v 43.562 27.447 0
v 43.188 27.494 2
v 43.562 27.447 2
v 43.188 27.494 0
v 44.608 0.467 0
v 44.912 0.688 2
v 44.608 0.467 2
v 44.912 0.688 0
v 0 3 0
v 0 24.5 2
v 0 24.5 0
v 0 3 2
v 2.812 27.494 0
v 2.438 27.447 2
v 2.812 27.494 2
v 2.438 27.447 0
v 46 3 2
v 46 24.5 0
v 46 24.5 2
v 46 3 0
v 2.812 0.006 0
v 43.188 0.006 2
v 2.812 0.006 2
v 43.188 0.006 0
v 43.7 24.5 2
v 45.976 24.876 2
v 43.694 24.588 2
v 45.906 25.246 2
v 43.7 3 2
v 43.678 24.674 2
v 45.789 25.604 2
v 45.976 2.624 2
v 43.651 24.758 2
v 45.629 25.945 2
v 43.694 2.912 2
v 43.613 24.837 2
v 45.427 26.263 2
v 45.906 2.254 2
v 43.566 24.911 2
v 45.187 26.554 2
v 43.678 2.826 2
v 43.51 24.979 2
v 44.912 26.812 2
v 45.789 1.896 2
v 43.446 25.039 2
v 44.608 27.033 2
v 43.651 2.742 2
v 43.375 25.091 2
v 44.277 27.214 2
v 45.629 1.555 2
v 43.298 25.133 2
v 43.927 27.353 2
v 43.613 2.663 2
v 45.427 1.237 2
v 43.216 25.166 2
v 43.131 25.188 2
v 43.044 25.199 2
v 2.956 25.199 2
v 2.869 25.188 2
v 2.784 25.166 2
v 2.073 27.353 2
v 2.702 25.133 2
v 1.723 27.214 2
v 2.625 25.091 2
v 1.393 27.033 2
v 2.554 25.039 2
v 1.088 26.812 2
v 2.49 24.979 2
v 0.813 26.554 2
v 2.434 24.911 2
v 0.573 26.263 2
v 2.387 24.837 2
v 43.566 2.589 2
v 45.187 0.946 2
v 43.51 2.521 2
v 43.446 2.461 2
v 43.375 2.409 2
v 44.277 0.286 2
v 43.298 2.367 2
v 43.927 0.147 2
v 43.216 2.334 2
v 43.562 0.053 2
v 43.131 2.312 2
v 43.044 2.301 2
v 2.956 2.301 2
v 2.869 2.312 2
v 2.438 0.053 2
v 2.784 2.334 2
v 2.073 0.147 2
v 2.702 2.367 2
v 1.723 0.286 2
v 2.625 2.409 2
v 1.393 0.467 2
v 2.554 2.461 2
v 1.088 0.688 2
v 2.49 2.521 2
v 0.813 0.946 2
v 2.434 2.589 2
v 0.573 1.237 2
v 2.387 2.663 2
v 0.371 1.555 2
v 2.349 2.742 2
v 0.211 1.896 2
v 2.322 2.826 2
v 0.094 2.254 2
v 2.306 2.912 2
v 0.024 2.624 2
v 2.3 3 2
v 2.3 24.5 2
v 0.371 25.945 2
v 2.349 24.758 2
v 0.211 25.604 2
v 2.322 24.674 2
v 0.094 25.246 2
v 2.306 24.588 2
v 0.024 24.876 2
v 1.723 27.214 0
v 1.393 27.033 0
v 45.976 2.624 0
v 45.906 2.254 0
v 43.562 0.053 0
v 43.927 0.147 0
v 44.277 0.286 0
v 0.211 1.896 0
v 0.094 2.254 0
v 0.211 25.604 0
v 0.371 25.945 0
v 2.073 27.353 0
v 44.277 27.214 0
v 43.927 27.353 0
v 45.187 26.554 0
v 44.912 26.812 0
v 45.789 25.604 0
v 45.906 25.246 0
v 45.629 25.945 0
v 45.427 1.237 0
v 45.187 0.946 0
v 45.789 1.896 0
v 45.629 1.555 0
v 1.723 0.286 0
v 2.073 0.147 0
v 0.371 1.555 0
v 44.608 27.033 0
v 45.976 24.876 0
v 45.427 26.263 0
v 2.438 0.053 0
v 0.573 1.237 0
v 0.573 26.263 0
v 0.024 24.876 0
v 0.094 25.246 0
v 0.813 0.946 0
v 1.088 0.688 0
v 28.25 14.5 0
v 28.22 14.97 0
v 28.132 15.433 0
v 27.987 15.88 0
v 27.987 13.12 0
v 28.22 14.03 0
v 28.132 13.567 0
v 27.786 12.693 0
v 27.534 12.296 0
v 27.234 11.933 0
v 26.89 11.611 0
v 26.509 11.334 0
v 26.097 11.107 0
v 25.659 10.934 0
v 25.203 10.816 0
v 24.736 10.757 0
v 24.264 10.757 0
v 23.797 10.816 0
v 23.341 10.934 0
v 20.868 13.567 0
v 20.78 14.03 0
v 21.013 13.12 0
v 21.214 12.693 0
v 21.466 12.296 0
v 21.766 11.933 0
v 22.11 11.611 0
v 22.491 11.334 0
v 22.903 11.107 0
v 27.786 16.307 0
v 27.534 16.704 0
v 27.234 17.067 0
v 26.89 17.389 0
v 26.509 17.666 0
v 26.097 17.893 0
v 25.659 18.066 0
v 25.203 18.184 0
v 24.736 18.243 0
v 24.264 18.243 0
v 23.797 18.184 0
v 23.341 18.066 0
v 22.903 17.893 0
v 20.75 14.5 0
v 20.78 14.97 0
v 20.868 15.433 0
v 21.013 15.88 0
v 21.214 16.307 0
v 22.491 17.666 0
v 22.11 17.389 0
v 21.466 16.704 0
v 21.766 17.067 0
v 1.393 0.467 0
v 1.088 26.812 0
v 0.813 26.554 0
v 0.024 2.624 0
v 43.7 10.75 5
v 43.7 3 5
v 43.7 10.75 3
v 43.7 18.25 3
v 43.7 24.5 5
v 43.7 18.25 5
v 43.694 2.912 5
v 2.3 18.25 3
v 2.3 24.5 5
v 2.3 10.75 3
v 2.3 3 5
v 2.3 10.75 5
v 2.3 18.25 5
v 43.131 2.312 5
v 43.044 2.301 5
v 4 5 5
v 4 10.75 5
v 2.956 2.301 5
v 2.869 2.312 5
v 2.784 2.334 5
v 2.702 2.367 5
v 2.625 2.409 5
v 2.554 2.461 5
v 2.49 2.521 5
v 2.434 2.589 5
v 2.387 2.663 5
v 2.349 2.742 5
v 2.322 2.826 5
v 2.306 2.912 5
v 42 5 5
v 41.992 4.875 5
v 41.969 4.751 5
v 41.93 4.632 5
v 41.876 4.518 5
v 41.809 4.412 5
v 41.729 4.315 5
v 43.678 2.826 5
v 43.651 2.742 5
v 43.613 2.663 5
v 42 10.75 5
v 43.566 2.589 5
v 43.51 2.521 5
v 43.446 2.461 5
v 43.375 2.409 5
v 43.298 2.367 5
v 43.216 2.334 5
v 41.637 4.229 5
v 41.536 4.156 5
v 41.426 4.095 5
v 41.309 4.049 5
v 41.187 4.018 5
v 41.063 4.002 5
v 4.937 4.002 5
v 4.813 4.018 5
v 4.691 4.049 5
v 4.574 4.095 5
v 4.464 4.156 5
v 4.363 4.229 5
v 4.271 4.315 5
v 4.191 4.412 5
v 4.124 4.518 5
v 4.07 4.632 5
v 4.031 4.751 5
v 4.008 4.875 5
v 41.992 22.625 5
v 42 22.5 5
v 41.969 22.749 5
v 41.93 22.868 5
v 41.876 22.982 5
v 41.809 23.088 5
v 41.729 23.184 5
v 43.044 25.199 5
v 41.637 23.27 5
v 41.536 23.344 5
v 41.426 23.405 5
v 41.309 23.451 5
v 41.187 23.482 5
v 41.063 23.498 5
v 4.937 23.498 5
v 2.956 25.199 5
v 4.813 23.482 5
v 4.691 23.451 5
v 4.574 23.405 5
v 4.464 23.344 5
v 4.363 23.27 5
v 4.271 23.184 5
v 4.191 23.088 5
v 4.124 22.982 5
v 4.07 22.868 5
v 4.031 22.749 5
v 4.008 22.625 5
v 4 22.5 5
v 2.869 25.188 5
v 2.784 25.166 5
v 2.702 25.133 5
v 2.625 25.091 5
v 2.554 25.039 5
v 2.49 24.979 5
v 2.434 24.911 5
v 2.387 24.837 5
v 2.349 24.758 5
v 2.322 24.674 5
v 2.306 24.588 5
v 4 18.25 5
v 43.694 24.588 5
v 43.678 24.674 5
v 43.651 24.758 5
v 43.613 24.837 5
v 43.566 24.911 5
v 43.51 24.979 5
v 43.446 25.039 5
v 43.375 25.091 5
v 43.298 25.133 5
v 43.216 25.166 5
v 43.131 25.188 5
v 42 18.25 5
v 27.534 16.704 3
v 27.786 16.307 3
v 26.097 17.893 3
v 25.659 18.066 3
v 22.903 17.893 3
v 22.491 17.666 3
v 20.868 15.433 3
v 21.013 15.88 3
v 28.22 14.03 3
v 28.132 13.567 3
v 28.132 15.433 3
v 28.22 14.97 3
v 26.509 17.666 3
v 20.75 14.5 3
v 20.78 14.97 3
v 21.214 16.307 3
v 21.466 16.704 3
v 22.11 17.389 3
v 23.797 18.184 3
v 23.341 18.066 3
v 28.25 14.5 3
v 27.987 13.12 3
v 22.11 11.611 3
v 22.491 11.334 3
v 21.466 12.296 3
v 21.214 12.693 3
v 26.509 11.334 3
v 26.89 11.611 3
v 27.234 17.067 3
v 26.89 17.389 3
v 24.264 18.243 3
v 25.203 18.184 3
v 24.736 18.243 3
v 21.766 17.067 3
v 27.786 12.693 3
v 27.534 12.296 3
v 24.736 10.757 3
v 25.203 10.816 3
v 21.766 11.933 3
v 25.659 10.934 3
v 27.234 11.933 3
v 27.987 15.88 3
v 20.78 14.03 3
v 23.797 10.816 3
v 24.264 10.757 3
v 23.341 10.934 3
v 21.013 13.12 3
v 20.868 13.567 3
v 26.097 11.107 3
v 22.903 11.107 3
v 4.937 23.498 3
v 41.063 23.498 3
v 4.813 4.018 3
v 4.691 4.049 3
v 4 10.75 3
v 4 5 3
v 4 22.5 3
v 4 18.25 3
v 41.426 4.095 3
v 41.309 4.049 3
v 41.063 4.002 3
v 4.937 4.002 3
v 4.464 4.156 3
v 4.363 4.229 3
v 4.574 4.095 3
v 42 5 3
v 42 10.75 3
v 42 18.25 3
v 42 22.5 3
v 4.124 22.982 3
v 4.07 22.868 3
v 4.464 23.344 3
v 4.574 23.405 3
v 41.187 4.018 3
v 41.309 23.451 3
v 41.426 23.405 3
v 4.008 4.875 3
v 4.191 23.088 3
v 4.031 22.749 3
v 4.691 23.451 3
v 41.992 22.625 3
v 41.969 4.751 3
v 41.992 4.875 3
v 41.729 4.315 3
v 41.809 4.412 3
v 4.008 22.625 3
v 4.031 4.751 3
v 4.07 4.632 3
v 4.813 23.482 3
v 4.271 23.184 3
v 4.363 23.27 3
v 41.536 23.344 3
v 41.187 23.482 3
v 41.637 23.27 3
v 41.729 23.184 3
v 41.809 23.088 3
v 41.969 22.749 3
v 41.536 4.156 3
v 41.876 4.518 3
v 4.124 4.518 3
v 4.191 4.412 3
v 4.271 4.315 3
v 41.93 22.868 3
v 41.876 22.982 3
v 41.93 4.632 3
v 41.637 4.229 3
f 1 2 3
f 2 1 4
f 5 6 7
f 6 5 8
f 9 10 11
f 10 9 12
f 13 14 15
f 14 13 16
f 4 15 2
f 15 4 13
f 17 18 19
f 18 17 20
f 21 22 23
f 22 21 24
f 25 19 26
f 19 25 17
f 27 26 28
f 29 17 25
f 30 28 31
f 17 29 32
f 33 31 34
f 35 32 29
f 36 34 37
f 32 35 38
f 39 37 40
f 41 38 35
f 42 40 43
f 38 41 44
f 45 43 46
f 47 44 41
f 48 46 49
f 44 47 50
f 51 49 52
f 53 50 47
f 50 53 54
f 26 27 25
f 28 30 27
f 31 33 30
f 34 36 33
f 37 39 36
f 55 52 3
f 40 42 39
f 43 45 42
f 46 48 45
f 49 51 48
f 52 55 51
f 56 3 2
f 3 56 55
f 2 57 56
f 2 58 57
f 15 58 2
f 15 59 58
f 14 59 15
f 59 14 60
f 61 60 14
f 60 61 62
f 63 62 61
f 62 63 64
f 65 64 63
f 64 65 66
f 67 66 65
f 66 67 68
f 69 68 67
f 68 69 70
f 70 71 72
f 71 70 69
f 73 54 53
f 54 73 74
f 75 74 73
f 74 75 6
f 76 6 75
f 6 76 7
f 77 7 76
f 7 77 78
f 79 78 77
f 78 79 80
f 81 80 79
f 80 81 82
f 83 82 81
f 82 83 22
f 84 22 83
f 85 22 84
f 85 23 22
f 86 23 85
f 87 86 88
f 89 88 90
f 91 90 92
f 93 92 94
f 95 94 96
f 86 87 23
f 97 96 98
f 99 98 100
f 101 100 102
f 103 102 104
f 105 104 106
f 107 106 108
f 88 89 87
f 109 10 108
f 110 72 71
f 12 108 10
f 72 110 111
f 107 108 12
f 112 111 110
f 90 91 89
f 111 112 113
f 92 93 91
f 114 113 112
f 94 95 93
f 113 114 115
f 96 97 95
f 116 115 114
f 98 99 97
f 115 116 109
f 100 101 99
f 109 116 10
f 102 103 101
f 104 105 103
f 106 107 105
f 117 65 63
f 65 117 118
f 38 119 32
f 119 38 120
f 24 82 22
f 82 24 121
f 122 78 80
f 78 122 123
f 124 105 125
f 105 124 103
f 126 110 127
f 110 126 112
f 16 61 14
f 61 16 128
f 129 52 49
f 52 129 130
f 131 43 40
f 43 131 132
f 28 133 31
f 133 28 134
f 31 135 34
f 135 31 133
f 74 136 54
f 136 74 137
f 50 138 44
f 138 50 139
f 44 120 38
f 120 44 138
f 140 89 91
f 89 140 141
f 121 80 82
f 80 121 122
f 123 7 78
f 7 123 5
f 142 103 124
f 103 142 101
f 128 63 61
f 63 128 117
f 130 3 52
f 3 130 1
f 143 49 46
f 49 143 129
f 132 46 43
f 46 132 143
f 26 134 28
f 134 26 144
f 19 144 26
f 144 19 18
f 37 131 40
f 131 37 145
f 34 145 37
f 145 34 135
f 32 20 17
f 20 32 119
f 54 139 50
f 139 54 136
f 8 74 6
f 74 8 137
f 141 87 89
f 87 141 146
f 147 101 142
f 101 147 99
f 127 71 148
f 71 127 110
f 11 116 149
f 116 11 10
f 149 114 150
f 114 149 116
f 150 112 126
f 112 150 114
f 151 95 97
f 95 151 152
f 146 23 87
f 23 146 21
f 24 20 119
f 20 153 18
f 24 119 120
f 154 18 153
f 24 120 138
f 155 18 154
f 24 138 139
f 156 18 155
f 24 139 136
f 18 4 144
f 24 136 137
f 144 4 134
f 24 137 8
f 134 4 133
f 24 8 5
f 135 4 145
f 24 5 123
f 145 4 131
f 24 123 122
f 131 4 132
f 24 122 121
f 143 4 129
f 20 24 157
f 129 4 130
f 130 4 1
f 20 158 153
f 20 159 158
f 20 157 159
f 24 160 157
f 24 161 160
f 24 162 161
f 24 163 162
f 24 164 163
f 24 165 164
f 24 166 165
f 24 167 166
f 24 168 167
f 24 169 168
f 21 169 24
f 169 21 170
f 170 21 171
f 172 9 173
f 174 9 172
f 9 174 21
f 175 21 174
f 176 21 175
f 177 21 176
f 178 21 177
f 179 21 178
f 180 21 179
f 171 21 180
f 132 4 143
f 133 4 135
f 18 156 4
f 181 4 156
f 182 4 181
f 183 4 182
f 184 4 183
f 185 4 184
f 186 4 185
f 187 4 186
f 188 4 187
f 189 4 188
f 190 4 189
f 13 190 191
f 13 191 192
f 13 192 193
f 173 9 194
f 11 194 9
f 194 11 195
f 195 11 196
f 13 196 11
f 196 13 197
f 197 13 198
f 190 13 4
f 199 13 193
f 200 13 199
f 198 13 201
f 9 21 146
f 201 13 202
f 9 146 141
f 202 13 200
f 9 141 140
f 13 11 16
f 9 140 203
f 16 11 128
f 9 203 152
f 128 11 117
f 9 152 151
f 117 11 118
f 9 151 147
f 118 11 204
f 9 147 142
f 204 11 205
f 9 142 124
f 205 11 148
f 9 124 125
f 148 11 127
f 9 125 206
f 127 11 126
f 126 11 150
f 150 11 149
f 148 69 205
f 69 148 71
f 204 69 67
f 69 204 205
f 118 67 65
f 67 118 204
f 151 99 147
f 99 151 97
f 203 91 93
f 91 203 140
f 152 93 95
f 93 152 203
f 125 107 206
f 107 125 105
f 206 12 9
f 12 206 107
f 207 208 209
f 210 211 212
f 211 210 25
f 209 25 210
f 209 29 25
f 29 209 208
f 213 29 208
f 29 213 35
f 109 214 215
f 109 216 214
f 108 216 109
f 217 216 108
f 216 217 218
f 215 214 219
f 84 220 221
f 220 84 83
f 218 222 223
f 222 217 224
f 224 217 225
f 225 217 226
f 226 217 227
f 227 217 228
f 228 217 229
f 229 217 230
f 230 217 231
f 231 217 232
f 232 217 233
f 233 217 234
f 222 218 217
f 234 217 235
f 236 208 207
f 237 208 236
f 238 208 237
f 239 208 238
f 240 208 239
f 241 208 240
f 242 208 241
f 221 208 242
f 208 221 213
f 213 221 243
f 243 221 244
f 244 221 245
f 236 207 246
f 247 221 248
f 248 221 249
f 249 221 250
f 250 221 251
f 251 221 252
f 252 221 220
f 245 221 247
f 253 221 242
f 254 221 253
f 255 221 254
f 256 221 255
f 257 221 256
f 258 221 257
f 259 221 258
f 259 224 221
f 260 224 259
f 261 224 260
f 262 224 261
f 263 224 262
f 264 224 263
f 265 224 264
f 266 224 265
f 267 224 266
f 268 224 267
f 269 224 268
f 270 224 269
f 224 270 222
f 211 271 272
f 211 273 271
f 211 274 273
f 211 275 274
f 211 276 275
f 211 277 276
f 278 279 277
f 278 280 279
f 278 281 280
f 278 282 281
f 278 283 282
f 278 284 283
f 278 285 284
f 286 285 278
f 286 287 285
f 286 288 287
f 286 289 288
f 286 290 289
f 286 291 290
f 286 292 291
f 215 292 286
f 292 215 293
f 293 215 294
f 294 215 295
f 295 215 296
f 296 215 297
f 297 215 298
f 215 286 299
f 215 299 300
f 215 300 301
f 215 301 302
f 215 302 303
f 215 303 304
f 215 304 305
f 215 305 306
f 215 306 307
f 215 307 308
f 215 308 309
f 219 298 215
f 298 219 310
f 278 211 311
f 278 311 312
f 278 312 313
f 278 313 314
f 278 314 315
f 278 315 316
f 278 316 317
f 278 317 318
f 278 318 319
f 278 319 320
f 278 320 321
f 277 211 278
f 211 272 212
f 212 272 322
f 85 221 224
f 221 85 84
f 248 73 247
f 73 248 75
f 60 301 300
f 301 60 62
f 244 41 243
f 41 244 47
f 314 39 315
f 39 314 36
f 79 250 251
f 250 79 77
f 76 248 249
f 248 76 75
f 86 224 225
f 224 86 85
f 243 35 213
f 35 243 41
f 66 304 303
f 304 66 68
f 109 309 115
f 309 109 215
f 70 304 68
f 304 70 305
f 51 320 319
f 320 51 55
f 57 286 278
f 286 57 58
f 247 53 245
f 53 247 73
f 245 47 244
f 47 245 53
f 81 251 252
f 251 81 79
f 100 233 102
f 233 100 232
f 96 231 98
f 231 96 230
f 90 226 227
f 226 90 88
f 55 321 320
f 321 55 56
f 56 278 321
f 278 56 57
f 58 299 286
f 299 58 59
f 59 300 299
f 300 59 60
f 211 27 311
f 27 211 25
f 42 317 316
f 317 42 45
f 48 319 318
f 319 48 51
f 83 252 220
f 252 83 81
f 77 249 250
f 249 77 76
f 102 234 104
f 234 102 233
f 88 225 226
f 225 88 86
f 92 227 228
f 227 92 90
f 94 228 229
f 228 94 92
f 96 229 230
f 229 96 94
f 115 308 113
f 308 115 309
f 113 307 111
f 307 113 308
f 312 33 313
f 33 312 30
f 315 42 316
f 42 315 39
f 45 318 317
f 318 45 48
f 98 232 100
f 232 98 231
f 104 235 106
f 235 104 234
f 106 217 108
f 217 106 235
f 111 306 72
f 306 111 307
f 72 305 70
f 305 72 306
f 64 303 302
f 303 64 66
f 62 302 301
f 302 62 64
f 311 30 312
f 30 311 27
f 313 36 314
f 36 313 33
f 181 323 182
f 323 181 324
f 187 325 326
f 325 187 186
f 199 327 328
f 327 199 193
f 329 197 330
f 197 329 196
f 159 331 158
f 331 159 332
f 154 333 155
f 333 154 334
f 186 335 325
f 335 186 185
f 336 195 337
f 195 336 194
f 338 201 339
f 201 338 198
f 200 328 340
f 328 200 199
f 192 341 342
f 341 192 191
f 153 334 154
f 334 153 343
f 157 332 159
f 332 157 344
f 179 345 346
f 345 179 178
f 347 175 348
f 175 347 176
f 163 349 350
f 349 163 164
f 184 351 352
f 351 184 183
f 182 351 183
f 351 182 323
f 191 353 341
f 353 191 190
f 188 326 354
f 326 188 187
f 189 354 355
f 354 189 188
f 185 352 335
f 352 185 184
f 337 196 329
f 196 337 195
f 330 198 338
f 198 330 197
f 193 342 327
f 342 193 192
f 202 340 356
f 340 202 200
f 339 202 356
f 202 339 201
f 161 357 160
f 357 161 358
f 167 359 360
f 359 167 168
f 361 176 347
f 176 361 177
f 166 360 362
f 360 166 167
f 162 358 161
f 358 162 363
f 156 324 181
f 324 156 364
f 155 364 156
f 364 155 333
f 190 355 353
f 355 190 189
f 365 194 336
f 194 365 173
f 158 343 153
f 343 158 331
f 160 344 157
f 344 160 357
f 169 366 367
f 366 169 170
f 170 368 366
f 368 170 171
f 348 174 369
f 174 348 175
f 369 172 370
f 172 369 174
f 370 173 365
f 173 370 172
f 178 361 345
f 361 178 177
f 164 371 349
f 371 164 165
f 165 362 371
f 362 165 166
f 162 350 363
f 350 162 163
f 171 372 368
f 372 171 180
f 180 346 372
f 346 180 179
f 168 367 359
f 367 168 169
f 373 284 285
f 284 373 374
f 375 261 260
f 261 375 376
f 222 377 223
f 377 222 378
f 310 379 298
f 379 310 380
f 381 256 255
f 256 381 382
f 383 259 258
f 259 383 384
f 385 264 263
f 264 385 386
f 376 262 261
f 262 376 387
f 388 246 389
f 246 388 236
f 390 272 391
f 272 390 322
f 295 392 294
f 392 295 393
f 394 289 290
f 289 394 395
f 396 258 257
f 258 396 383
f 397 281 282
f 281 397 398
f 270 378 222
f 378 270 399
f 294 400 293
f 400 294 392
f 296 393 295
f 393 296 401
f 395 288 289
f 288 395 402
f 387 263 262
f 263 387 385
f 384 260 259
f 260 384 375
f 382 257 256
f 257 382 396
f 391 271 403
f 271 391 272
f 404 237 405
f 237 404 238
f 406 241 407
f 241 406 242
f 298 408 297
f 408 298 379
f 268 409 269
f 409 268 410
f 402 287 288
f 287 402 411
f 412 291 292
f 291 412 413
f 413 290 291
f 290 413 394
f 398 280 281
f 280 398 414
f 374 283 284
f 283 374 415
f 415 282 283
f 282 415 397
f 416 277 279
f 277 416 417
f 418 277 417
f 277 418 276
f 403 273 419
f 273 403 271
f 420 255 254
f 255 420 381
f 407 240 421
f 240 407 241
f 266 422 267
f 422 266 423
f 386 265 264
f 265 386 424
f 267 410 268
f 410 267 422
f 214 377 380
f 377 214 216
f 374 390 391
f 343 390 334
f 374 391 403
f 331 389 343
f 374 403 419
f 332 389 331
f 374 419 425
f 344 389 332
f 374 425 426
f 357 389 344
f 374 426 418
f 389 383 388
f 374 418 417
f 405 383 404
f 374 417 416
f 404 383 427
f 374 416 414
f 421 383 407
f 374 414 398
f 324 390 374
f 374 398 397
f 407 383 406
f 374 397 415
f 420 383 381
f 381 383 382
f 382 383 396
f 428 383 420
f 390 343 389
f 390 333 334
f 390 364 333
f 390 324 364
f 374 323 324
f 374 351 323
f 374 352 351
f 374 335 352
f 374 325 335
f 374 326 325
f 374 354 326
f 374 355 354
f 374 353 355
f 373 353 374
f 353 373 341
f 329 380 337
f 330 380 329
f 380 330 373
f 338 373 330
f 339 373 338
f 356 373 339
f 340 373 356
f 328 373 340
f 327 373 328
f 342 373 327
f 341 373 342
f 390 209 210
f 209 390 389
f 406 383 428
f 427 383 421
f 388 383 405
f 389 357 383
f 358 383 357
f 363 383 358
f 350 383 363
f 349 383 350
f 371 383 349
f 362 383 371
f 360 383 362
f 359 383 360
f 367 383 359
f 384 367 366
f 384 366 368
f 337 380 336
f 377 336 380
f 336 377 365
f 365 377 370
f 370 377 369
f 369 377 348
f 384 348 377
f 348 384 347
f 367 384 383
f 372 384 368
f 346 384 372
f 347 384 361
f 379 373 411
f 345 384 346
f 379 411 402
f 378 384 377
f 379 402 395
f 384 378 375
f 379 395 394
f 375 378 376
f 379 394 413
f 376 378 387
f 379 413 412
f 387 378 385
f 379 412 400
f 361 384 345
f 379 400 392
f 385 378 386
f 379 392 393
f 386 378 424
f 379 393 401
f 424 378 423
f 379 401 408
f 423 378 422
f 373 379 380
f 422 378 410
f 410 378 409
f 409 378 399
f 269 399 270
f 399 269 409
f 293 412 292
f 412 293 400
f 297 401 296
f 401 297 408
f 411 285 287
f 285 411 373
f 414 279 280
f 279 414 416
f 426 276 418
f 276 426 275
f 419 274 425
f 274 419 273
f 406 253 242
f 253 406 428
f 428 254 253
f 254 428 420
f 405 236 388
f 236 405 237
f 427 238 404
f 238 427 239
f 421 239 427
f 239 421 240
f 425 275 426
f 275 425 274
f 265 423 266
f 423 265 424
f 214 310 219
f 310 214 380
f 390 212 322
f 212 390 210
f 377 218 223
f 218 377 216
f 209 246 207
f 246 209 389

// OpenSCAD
// Simple Lid for the Iridium Solar Beacon Cover

$fn=50; // fragments
wall = 2.0; // cover wall thickness
thickness = 2.0; // lid end thickness
internal_width = 42.0; // internal width (X) of the cover
internal_depth = 23.5; // internal depth (Y) of the cover
gap = 0.3; // clearance gap (per side)
insert_height = 3.0; // extra height for the lid insert
internal_corner_radius = 1.0; // radius of the internal corner cylinder

sma_r = 3.75; // radius of the hole for the sma connector
sma_x_offset = 1.5; // X offset of the hole for the sma connector w.r.t. the X center of the void
sma_y_offset = 0.75; // y offset of the hole for the sma connector w.r.t. the Y center of the void
sma_wall_thickness = 3.0; // wall thickness around the SMA connectors

if (gap > internal_corner_radius) echo("Error! Gap cannot be greater than the internal corner radius!");

width = internal_width + (2 * wall); // lid external width (X)
depth = internal_depth + (2 * wall); // lid external depth (Y)

total_height = wall + insert_height; // total height of the lid

sma_x = (width / 2) + sma_x_offset; // x position of the sma connector
sma_y = (depth / 2) + sma_y_offset; // y position of the sma connector

external_corner_radius = internal_corner_radius + wall; // external corner radius

module outer()
{
    translate([external_corner_radius, external_corner_radius, 0])
        minkowski() {
            cube([(width - (2 * external_corner_radius)), (depth - (2 * external_corner_radius)), (thickness / 2)]);
            cylinder(h=(thickness / 2), r=external_corner_radius);
        }
}

module inner()
// Thicker than required to avoid zero thickness joints
{
    translate([external_corner_radius, external_corner_radius, 0])
        minkowski() {
            cube([(width - (2 * external_corner_radius)), (depth - (2 * external_corner_radius)), (total_height / 2)]);
            cylinder(h=(total_height / 2), r=(internal_corner_radius - gap));
        }
}

module recess()
// Thicker than required to avoid zero thickness joints
{
    translate([(internal_corner_radius + wall + wall), (internal_corner_radius + wall + wall), sma_wall_thickness])
        minkowski() {
            cube([(width - (2 * (wall + wall + internal_corner_radius))), (depth - (2 * (wall + wall + internal_corner_radius))), (total_height / 2)]);
            cylinder(h=(total_height / 2), r=internal_corner_radius);
        }
}

module lid()
{
    union() {
        outer();
        inner();
    }
}

module sma()
// Cylinder is taller than required to avoid zero thickness skins
{
    translate([sma_x, sma_y, -1]) {
        cylinder(h=(total_height + 2),r=sma_r);
    }
}

module pcb_slot()
// Cube is taller amd wider than required to avoid zero thickness skins
{
    translate([0, (sma_y - sma_r), sma_wall_thickness]) {
        cube([width, (sma_r * 2), total_height]);
    }
}

module finished_lid()
{
    difference() {
        lid();
        sma();
        recess();
        pcb_slot();
    }
}

finished_lid();
